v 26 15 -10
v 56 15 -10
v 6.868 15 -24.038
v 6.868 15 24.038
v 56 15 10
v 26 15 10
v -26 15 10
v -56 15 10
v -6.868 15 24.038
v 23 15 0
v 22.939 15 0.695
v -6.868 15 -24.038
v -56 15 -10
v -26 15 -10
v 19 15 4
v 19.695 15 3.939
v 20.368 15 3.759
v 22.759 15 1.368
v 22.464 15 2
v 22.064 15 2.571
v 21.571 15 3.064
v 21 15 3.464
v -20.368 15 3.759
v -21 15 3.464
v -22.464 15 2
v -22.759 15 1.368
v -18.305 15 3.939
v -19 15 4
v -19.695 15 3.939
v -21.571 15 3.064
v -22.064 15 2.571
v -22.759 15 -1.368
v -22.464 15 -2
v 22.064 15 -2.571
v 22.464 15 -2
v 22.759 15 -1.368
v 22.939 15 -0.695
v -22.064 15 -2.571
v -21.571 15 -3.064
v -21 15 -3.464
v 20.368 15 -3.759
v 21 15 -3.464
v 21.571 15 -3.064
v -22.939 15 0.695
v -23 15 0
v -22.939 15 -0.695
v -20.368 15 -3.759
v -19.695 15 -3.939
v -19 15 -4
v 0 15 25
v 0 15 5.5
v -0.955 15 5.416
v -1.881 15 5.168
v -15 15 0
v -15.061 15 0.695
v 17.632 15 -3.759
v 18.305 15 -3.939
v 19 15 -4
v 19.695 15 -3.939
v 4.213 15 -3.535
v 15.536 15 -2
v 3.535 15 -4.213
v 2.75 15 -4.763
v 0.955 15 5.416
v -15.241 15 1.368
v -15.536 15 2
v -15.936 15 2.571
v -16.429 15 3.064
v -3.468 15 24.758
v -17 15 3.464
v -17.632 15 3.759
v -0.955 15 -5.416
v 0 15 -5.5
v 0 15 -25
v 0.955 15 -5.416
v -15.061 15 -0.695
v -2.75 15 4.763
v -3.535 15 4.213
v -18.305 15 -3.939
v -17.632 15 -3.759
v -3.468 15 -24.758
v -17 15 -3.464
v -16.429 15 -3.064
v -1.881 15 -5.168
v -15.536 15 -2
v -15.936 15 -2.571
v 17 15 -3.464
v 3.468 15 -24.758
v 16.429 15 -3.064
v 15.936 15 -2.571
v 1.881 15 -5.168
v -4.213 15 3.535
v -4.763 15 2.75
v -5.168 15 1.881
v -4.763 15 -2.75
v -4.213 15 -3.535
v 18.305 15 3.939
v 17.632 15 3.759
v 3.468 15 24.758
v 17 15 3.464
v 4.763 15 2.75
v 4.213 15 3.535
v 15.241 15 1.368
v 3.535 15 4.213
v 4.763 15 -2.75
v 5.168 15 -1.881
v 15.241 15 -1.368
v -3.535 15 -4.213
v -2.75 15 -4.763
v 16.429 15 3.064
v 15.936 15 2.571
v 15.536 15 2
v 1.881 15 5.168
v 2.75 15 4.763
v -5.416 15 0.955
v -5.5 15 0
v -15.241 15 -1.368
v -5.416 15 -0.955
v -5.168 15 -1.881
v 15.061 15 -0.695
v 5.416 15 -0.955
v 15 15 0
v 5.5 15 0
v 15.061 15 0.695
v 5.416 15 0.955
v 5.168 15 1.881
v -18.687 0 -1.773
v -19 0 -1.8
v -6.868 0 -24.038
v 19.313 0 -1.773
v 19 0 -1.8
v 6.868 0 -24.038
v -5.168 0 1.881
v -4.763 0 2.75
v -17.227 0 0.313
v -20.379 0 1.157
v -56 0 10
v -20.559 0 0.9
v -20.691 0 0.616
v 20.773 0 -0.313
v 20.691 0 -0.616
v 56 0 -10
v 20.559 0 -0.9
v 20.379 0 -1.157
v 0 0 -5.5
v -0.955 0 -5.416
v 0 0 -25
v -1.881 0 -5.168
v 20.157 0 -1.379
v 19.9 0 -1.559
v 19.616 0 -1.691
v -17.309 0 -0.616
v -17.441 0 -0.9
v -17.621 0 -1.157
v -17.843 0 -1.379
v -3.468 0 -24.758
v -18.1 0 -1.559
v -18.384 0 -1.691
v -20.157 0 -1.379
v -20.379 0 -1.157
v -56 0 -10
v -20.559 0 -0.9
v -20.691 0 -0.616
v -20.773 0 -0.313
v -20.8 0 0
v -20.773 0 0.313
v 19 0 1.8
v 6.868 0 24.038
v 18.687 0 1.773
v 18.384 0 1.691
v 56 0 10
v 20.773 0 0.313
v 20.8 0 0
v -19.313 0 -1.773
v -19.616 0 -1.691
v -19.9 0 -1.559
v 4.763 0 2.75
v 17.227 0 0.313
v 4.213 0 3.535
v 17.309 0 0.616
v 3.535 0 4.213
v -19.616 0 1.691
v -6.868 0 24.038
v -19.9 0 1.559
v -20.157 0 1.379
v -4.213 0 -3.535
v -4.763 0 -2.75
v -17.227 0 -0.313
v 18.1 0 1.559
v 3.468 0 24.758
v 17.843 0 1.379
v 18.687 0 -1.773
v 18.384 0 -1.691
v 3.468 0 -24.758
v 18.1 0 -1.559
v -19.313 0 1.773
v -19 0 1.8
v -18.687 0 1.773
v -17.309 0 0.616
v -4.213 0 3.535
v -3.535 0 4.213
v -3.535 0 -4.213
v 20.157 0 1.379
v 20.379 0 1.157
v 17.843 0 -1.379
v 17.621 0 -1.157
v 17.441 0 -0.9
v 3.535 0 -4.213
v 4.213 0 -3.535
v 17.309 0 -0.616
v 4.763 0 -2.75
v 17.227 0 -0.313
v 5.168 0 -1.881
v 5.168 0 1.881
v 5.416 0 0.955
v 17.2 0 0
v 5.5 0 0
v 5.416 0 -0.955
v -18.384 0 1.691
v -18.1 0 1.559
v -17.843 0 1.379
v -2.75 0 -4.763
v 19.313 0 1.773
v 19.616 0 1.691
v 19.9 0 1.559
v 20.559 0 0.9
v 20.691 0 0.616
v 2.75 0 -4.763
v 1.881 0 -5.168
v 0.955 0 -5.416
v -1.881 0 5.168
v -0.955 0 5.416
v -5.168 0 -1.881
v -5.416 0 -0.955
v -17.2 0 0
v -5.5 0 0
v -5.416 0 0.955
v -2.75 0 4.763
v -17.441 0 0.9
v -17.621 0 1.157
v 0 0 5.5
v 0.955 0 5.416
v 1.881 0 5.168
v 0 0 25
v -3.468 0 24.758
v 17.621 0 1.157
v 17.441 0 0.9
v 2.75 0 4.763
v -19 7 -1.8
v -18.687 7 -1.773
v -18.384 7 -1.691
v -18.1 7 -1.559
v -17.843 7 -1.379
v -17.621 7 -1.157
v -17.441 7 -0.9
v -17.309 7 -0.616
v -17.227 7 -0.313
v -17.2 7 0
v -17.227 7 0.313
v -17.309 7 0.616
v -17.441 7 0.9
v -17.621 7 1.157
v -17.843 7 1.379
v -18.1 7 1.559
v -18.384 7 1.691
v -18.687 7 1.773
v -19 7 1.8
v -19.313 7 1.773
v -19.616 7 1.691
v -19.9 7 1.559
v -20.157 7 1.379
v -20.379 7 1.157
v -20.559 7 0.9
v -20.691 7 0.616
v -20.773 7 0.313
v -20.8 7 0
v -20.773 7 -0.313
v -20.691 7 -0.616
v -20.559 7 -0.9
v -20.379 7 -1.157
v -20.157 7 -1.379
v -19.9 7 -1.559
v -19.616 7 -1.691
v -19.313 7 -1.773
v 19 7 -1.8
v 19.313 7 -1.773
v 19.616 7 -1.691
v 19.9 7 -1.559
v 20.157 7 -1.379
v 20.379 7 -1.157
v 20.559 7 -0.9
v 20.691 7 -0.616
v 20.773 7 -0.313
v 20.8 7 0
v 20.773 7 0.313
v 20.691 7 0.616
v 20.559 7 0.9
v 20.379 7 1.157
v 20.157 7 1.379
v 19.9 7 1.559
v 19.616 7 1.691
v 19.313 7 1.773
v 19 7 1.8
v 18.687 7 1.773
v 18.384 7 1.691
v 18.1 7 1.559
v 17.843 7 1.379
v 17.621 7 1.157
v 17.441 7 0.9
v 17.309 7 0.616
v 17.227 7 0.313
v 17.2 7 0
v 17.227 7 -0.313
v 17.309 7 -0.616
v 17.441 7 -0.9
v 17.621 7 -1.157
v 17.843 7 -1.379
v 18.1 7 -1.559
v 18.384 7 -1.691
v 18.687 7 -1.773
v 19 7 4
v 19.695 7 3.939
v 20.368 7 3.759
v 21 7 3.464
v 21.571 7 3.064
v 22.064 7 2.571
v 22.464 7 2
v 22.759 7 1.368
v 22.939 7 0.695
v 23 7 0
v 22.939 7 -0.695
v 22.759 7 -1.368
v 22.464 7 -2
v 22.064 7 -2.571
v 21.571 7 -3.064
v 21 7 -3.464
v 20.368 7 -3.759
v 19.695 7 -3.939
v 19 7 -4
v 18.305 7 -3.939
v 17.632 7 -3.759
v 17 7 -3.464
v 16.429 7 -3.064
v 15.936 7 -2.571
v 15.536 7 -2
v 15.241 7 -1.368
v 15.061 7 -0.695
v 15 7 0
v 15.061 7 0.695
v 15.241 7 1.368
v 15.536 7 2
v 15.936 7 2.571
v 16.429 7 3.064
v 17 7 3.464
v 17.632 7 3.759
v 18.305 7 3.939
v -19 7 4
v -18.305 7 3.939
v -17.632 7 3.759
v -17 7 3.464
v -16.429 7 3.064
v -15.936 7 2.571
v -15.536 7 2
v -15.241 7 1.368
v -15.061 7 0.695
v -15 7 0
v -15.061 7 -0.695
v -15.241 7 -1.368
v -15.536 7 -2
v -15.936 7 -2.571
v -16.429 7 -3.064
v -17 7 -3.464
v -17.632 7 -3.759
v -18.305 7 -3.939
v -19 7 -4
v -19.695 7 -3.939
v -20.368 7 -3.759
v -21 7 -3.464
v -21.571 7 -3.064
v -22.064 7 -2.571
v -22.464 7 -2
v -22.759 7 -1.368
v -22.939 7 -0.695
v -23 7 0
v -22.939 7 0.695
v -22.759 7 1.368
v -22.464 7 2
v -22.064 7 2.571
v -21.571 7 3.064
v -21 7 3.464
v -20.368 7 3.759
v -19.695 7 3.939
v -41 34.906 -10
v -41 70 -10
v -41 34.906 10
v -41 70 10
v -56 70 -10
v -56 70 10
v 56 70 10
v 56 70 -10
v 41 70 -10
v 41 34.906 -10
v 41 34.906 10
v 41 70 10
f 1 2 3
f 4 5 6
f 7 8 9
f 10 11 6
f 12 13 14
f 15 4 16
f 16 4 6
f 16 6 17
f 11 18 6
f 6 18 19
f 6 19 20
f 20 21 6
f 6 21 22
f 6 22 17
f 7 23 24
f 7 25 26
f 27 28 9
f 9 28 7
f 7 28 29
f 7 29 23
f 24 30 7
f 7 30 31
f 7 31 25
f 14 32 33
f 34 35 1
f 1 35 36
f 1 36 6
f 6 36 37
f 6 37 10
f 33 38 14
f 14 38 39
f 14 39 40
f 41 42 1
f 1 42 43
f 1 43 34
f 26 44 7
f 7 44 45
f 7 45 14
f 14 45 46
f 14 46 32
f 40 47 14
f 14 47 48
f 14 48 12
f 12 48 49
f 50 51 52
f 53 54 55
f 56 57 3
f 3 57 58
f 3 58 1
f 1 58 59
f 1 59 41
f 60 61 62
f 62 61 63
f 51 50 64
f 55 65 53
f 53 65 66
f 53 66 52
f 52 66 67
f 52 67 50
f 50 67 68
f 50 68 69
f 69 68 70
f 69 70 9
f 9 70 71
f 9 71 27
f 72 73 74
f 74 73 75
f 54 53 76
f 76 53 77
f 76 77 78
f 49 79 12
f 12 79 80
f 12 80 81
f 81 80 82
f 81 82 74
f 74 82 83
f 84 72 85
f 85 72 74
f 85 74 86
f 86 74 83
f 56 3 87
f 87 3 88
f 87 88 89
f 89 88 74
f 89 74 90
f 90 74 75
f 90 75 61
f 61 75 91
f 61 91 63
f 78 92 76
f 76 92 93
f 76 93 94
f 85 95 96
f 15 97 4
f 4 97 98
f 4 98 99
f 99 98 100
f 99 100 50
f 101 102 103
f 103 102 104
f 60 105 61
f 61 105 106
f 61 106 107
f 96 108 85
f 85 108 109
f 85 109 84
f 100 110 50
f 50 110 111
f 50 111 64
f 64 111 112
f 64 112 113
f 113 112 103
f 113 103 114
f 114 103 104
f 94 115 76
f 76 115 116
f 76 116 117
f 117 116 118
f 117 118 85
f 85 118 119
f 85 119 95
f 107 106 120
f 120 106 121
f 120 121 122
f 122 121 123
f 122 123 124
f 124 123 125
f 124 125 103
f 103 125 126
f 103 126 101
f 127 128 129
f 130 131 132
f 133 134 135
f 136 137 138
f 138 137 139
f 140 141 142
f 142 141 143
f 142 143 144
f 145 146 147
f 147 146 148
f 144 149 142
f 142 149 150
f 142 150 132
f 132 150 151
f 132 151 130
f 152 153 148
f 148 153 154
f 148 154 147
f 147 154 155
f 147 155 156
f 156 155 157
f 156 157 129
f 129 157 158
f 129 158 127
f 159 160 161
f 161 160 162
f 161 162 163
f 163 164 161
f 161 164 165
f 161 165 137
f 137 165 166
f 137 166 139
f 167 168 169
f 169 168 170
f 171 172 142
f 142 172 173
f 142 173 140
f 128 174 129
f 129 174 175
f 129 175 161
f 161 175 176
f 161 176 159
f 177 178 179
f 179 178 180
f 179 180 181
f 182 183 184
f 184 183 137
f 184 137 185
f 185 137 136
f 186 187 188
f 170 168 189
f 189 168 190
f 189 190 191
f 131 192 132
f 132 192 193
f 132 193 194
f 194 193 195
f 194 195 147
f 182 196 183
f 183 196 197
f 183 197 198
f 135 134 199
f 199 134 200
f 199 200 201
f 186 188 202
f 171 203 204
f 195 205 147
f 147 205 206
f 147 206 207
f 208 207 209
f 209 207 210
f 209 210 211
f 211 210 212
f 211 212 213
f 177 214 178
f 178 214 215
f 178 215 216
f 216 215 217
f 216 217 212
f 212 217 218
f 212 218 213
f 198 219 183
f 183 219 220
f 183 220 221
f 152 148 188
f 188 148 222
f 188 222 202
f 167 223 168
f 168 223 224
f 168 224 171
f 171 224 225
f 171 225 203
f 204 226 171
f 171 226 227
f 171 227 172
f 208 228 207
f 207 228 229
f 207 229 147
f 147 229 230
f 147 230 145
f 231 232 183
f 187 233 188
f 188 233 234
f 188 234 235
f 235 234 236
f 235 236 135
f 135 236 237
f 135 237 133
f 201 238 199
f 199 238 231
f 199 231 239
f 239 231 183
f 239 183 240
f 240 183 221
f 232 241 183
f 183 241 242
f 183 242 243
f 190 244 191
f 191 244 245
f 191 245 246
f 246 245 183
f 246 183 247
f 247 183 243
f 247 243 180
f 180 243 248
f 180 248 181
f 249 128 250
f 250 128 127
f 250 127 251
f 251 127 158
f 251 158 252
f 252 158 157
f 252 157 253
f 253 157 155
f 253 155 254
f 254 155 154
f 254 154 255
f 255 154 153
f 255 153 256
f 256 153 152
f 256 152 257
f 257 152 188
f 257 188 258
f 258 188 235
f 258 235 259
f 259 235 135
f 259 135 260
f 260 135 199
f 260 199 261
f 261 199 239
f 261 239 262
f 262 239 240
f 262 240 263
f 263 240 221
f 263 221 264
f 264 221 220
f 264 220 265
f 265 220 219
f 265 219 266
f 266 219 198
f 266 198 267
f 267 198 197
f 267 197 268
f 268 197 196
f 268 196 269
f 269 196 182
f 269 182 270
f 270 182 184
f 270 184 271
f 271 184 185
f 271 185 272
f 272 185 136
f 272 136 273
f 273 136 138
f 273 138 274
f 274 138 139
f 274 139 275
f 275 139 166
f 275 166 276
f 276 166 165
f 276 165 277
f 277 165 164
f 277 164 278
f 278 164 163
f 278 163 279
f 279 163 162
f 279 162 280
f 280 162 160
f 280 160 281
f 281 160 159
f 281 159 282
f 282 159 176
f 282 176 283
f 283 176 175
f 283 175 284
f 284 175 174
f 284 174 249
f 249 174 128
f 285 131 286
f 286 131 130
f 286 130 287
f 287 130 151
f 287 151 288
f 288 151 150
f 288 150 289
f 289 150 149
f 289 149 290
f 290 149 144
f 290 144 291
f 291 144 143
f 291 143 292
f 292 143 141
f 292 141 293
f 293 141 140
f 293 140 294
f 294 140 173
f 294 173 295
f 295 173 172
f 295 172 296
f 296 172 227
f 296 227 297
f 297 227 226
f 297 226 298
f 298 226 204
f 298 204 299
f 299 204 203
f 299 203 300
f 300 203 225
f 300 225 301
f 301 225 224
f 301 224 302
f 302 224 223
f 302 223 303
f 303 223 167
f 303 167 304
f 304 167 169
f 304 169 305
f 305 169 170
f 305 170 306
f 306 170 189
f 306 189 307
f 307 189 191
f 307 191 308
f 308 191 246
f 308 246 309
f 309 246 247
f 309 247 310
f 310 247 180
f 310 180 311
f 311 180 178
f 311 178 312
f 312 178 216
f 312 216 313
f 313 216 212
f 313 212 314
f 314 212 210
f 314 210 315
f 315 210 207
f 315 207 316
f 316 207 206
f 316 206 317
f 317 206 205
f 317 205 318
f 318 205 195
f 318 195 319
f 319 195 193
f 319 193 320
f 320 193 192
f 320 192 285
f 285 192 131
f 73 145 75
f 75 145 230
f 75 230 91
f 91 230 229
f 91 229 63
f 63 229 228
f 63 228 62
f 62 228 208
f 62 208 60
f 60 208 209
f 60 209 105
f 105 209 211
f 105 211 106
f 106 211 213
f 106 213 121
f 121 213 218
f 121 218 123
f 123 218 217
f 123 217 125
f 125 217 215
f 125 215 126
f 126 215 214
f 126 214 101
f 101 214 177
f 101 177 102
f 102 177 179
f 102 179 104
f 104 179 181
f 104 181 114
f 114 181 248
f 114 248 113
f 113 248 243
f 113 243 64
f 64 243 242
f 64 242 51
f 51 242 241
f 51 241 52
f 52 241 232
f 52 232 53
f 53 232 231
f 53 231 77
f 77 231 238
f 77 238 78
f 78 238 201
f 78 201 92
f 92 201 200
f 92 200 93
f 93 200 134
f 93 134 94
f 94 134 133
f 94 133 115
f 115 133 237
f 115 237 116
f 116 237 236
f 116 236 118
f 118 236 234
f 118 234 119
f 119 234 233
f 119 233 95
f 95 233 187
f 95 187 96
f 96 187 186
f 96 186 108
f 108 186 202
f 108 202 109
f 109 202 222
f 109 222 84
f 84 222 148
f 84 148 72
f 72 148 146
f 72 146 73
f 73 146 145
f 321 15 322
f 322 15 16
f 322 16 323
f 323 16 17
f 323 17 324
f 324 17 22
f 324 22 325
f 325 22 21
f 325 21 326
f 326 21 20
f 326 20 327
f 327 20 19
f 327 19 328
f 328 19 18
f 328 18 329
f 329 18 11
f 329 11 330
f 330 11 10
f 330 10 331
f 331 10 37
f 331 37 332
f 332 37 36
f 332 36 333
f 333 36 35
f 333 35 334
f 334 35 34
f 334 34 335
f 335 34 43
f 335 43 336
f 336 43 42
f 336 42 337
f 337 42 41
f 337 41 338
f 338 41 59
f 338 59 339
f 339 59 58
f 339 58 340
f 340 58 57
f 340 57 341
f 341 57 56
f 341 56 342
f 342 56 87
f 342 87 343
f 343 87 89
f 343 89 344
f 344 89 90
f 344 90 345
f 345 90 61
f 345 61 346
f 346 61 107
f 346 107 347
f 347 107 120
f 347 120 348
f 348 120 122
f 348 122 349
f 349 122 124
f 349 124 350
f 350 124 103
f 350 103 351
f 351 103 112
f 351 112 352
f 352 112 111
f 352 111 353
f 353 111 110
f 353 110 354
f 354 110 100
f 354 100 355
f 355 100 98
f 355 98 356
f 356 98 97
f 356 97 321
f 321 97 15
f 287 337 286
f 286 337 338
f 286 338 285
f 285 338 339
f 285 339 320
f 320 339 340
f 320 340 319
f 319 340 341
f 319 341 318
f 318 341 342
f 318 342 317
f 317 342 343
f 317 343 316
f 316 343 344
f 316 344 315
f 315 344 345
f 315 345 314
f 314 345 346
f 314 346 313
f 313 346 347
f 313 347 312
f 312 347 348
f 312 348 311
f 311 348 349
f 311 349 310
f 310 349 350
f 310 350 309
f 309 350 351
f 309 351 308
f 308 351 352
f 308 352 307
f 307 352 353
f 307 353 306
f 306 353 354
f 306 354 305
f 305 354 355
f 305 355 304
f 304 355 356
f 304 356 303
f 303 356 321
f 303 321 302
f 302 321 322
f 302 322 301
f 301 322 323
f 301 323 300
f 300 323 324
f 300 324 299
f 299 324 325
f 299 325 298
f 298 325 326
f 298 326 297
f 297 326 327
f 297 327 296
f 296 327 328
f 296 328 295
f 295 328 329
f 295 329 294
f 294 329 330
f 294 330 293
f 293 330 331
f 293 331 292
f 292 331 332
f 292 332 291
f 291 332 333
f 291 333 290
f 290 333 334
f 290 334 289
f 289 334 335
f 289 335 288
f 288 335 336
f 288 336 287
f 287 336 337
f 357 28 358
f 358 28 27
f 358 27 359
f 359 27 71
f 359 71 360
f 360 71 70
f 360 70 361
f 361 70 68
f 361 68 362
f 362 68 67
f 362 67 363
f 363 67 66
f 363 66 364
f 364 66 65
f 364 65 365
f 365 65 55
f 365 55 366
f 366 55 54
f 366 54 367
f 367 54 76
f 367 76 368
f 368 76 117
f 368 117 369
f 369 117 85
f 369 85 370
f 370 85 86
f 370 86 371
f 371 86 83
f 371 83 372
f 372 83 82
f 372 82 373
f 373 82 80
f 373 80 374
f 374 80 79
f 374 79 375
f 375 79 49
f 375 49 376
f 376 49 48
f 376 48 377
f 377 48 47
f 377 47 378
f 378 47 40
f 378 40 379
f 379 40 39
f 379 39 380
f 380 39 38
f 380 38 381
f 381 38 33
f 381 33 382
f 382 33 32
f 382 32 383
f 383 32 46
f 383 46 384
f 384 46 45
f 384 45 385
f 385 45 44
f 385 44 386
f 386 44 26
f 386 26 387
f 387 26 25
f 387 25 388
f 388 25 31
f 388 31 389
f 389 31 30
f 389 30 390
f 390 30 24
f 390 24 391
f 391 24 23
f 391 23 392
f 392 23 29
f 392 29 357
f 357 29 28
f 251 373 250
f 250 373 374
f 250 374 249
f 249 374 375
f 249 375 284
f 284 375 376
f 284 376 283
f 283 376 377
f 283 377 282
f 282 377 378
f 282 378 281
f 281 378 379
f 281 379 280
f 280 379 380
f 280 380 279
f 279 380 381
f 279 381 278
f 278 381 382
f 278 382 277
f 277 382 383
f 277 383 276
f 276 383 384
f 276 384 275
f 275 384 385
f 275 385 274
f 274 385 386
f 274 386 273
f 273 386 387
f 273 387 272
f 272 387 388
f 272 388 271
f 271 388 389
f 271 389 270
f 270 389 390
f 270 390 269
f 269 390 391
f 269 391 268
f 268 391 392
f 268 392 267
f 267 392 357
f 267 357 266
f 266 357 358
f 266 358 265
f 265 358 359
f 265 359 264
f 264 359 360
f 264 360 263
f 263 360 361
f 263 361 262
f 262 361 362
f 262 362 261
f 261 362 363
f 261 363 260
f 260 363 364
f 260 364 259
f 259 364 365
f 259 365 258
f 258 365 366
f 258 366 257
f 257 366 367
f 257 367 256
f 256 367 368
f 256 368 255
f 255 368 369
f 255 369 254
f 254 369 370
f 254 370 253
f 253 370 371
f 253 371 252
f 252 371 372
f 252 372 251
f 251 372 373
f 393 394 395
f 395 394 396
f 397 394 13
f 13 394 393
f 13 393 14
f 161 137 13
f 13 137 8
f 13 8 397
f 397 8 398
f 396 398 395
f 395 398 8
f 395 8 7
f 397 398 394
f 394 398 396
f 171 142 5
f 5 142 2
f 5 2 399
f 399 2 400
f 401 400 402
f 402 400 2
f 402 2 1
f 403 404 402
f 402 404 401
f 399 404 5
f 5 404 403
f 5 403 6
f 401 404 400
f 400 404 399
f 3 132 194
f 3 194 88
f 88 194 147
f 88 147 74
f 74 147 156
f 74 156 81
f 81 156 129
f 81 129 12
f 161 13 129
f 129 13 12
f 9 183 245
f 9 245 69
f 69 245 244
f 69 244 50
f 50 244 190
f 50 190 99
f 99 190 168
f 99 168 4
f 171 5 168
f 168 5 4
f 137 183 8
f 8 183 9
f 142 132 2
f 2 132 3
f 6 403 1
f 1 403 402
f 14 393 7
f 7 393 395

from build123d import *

# Parameters (mm, degrees)
SKETCH1_R               = 25
SKETCH1_R_2             = 1.8
SKETCH1_R_3             = 5.5
BOSS_EXTRUDE1_DEPTH     = 15
SKETCH2_R               = 4
CUT_EXTRUDE1_DEPTH      = 8
SKETCH3_W               = 82
SKETCH3_H               = 50
SKETCH3_R               = 24.5
BOSS_EXTRUDE2_DEPTH     = 15
SKETCH4_W               = 15
SKETCH4_H               = 20
BOSS_EXTRUDE3_DEPTH     = 70
CUT_EXTRUDE2_DEPTH      = 94.064493766
CUT_EXTRUDE2_DEPTH_BACK = 94.064493766
BOSS_EXTRUDE4_DEPTH     = 15
CHAMFER1_SIZE           = 15
CHAMFER1_SIZE2          = 19.905672324


with BuildPart() as part:
    # Sketch1 → Boss-Extrude1 (new body)
    with BuildSketch(Plane(origin=(0, 0, 0), x_dir=(1, 0, 0), z_dir=(0, 1, 0))):
        with Locations(Location((0, 0, 0), (0, 0, 270))):
            Circle(SKETCH1_R)
        with Locations(Location((-19, 0, 0), (0, 0, 270))):
            Circle(SKETCH1_R_2, mode=Mode.SUBTRACT)
        with Locations(Location((19, 0, 0), (0, 0, 90))):
            Circle(SKETCH1_R_2, mode=Mode.SUBTRACT)
        with Locations(Location((0, 0, 0), (0, 0, 270))):
            Circle(SKETCH1_R_3, mode=Mode.SUBTRACT)
    extrude(amount=BOSS_EXTRUDE1_DEPTH)

    # Sketch2 → Cut-Extrude1 (cut)
    with BuildSketch(Plane(origin=(0, 15, 0), x_dir=(1, 0, 0), z_dir=(0, 1, 0))):
        with Locations(Location((-19, 0, 0), (0, 0, 270))):
            Circle(SKETCH2_R)
        with Locations(Location((19, 0, 0), (0, 0, 270))):
            Circle(SKETCH2_R)
    extrude(amount=-CUT_EXTRUDE1_DEPTH, mode=Mode.SUBTRACT)

    # Sketch3 → Boss-Extrude2 (add)
    with BuildSketch(Plane.XZ):
        Rectangle(SKETCH3_W, SKETCH3_H)
        Circle(SKETCH3_R, mode=Mode.SUBTRACT)
    extrude(amount=-BOSS_EXTRUDE2_DEPTH)

    # Sketch4 → Boss-Extrude3 (add)
    with BuildSketch(Plane.XZ):
        with Locations((-48.5, 0)):
            Rectangle(SKETCH4_W, SKETCH4_H)
        with Locations((48.5, 0)):
            Rectangle(SKETCH4_W, SKETCH4_H)
    extrude(amount=-BOSS_EXTRUDE3_DEPTH)

    # Sketch5 → Cut-Extrude2 (cut, two sides: drawn at the far end of the back side and taken through both)
    with BuildSketch(Plane.XZ.offset(-CUT_EXTRUDE2_DEPTH_BACK)):
        Polygon((-41, -25), (-41, -14.285834105), (-56, -10), (-56, -25), align=None)
        with BuildLine():
            ThreePointArc((-2.6e-08, -25), (-3.467621731, -24.758344039), (-6.86820572, -24.03804797))
            Line((-6.86820572, -24.03804797), (-41, -14.285834105))
            Line((-41, -14.285834105), (-41, -25))
            Line((-41, -25), (-2.6e-08, -25))
        make_face()
        Polygon((-56, 25), (-56, 10), (-41, 14.285834105), (-41, 25), align=None)
        with BuildLine():
            Line((-41, 25), (-41, 14.285834105))
            Line((-41, 14.285834105), (-6.86820572, 24.03804797))
            ThreePointArc((-6.86820572, 24.03804797), (-3.467621732, 24.758344038), (-2.8e-08, 25))
            Line((-2.8e-08, 25), (-41, 25))
        make_face()
        with BuildLine():
            Line((41, 25), (-2.8e-08, 25))
            ThreePointArc((-2.8e-08, 25), (3.467621704, 24.758344042), (6.86820572, 24.03804797))
            Line((6.86820572, 24.03804797), (41, 14.285834105))
            Line((41, 14.285834105), (41, 25))
        make_face()
        with BuildLine():
            ThreePointArc((6.86820572, -24.03804797), (3.467621705, -24.758344042), (-2.6e-08, -25))
            Line((-2.6e-08, -25), (41, -25))
            Line((41, -25), (41, -14.285834105))
            Line((41, -14.285834105), (6.86820572, -24.03804797))
        make_face()
        Polygon((41, -14.285834105), (41, -25), (56, -25), (56, -10), align=None)
        Polygon((56, 25), (41, 25), (41, 14.285834105), (56, 10), align=None)
    extrude(amount=CUT_EXTRUDE2_DEPTH + CUT_EXTRUDE2_DEPTH_BACK, mode=Mode.SUBTRACT)

    # Sketch6 → Boss-Extrude4 (add)
    with BuildSketch(Plane.XZ):
        Polygon((-56, 10), (-41, 14.285834105), (-41, -14.285834105), (-56, -10), align=None)
        Polygon((41, 14.285834105), (56, 10), (56, -10), (41, -14.285834105), align=None)
    extrude(amount=-BOSS_EXTRUDE4_DEPTH)

    # Chamfer1
    chamfer1_edges = [part.edges().sort_by_distance(p)[0] for p in [
        (-41, 15, 0),
        (41, 15, 0),
    ]]
    chamfer1_side = [part.faces().sort_by_distance(p)[0] for p in [
        (0, 15, 23.773460151),
    ]]
    chamfer(chamfer1_edges, length=CHAMFER1_SIZE, length2=CHAMFER1_SIZE2, reference=chamfer1_side[0])


solid = part.part
